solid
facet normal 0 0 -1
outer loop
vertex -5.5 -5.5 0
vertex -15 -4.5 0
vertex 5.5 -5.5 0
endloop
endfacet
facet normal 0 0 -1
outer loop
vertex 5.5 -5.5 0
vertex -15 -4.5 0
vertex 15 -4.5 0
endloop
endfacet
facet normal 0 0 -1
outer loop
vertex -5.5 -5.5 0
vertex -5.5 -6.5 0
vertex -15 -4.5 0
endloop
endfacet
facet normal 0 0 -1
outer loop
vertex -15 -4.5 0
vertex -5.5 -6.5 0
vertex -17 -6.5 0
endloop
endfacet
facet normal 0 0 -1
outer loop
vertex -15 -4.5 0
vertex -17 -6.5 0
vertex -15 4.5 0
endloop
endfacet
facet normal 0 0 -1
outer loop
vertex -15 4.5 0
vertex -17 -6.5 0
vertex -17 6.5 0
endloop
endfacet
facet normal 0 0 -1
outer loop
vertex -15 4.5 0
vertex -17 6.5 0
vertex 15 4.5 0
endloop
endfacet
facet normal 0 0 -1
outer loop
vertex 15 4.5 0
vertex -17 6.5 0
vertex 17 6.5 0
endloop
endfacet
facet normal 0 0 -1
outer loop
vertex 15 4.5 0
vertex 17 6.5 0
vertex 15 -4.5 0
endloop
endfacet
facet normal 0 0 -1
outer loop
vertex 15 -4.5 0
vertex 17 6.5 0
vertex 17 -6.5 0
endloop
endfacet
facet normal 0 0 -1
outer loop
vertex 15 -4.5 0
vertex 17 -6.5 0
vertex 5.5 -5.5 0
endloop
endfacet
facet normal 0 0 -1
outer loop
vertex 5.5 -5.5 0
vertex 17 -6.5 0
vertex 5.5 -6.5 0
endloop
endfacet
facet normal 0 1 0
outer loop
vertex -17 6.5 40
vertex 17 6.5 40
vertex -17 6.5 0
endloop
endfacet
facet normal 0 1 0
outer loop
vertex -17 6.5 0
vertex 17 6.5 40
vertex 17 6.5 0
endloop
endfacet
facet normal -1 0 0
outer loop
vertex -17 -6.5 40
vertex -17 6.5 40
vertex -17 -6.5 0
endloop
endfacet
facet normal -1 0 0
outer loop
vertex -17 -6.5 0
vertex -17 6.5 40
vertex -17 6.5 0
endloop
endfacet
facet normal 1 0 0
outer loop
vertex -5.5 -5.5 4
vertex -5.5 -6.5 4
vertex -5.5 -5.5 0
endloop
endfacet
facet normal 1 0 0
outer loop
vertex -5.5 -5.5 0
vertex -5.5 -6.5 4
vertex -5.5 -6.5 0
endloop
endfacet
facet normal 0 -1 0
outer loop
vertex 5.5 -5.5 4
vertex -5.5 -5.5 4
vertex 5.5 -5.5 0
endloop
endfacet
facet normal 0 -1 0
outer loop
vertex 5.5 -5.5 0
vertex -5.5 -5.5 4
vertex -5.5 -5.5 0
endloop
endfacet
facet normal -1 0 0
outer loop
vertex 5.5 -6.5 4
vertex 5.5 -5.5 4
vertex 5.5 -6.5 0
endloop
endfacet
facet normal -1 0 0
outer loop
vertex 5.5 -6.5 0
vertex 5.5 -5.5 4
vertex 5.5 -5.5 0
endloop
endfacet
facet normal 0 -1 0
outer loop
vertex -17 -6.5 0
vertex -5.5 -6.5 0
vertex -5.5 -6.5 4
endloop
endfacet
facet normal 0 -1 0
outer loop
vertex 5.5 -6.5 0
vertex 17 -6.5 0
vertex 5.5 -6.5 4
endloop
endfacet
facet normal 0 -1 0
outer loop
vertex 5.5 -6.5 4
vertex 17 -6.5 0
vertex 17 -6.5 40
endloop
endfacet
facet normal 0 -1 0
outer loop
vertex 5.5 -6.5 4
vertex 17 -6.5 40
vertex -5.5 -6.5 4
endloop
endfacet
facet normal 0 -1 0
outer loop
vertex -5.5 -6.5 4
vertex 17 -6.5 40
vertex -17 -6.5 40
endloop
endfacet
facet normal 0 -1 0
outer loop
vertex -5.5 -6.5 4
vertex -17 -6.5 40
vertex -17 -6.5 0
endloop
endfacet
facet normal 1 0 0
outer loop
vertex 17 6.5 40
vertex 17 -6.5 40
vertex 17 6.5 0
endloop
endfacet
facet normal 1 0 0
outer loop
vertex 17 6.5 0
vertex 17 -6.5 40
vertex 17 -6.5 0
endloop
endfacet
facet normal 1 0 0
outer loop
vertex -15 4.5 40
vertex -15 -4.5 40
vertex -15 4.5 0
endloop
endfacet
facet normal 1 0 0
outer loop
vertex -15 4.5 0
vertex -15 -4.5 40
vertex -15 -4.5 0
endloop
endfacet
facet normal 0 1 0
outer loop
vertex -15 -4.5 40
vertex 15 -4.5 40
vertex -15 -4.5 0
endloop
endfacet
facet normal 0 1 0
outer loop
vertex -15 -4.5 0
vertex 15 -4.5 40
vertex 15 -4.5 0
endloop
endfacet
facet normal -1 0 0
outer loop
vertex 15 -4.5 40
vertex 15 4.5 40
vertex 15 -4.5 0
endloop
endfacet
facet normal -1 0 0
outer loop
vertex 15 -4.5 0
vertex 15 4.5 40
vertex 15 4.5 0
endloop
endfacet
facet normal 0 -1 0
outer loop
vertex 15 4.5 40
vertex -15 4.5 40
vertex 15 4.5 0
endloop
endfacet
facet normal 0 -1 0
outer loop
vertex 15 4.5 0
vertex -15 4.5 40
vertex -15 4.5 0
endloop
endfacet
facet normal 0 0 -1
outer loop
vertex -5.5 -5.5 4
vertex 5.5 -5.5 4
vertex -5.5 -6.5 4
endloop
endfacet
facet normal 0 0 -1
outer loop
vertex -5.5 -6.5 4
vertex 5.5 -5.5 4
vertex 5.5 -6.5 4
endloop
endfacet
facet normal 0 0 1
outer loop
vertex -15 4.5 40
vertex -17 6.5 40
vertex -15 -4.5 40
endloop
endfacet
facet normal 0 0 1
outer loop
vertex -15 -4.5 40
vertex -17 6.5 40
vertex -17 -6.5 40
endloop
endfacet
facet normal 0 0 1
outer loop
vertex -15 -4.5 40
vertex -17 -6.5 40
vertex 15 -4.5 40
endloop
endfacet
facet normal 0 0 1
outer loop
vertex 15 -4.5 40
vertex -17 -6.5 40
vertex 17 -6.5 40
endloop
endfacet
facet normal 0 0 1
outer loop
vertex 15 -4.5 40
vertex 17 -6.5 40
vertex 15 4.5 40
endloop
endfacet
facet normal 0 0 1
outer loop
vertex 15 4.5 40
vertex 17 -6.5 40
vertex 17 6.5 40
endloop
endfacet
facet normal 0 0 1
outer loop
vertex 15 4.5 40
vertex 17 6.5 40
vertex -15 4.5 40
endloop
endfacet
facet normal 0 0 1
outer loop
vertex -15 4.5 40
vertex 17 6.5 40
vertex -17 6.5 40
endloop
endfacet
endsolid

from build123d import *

# Parameters (mm, degrees)
SKETCH1_W           = 30
SKETCH1_H           = 9
BOSS_EXTRUDE1_DEPTH = 4
SKETCH2_W           = 34
SKETCH2_H           = 13
SKETCH2_W_2         = 30
SKETCH2_H_2         = 9
BOSS_EXTRUDE2_DEPTH = 36


with BuildPart() as part:
    # Sketch1 → Boss-Extrude1 (new body)
    with BuildSketch(Plane.XY):
        Polygon((-17, 6.5), (-17, -6.5), (-5.5, -6.5), (-5.5, -5.5), (5.5, -5.5), (5.5, -6.5), (17, -6.5), (17, 6.5), align=None)
        Rectangle(SKETCH1_W, SKETCH1_H, mode=Mode.SUBTRACT)
    extrude(amount=BOSS_EXTRUDE1_DEPTH)

    # Sketch2 → Boss-Extrude2 (add)
    with BuildSketch(Plane.XY.offset(4)):
        Rectangle(SKETCH2_W, SKETCH2_H)
        Rectangle(SKETCH2_W_2, SKETCH2_H_2, mode=Mode.SUBTRACT)
    extrude(amount=BOSS_EXTRUDE2_DEPTH)


solid = part.part
